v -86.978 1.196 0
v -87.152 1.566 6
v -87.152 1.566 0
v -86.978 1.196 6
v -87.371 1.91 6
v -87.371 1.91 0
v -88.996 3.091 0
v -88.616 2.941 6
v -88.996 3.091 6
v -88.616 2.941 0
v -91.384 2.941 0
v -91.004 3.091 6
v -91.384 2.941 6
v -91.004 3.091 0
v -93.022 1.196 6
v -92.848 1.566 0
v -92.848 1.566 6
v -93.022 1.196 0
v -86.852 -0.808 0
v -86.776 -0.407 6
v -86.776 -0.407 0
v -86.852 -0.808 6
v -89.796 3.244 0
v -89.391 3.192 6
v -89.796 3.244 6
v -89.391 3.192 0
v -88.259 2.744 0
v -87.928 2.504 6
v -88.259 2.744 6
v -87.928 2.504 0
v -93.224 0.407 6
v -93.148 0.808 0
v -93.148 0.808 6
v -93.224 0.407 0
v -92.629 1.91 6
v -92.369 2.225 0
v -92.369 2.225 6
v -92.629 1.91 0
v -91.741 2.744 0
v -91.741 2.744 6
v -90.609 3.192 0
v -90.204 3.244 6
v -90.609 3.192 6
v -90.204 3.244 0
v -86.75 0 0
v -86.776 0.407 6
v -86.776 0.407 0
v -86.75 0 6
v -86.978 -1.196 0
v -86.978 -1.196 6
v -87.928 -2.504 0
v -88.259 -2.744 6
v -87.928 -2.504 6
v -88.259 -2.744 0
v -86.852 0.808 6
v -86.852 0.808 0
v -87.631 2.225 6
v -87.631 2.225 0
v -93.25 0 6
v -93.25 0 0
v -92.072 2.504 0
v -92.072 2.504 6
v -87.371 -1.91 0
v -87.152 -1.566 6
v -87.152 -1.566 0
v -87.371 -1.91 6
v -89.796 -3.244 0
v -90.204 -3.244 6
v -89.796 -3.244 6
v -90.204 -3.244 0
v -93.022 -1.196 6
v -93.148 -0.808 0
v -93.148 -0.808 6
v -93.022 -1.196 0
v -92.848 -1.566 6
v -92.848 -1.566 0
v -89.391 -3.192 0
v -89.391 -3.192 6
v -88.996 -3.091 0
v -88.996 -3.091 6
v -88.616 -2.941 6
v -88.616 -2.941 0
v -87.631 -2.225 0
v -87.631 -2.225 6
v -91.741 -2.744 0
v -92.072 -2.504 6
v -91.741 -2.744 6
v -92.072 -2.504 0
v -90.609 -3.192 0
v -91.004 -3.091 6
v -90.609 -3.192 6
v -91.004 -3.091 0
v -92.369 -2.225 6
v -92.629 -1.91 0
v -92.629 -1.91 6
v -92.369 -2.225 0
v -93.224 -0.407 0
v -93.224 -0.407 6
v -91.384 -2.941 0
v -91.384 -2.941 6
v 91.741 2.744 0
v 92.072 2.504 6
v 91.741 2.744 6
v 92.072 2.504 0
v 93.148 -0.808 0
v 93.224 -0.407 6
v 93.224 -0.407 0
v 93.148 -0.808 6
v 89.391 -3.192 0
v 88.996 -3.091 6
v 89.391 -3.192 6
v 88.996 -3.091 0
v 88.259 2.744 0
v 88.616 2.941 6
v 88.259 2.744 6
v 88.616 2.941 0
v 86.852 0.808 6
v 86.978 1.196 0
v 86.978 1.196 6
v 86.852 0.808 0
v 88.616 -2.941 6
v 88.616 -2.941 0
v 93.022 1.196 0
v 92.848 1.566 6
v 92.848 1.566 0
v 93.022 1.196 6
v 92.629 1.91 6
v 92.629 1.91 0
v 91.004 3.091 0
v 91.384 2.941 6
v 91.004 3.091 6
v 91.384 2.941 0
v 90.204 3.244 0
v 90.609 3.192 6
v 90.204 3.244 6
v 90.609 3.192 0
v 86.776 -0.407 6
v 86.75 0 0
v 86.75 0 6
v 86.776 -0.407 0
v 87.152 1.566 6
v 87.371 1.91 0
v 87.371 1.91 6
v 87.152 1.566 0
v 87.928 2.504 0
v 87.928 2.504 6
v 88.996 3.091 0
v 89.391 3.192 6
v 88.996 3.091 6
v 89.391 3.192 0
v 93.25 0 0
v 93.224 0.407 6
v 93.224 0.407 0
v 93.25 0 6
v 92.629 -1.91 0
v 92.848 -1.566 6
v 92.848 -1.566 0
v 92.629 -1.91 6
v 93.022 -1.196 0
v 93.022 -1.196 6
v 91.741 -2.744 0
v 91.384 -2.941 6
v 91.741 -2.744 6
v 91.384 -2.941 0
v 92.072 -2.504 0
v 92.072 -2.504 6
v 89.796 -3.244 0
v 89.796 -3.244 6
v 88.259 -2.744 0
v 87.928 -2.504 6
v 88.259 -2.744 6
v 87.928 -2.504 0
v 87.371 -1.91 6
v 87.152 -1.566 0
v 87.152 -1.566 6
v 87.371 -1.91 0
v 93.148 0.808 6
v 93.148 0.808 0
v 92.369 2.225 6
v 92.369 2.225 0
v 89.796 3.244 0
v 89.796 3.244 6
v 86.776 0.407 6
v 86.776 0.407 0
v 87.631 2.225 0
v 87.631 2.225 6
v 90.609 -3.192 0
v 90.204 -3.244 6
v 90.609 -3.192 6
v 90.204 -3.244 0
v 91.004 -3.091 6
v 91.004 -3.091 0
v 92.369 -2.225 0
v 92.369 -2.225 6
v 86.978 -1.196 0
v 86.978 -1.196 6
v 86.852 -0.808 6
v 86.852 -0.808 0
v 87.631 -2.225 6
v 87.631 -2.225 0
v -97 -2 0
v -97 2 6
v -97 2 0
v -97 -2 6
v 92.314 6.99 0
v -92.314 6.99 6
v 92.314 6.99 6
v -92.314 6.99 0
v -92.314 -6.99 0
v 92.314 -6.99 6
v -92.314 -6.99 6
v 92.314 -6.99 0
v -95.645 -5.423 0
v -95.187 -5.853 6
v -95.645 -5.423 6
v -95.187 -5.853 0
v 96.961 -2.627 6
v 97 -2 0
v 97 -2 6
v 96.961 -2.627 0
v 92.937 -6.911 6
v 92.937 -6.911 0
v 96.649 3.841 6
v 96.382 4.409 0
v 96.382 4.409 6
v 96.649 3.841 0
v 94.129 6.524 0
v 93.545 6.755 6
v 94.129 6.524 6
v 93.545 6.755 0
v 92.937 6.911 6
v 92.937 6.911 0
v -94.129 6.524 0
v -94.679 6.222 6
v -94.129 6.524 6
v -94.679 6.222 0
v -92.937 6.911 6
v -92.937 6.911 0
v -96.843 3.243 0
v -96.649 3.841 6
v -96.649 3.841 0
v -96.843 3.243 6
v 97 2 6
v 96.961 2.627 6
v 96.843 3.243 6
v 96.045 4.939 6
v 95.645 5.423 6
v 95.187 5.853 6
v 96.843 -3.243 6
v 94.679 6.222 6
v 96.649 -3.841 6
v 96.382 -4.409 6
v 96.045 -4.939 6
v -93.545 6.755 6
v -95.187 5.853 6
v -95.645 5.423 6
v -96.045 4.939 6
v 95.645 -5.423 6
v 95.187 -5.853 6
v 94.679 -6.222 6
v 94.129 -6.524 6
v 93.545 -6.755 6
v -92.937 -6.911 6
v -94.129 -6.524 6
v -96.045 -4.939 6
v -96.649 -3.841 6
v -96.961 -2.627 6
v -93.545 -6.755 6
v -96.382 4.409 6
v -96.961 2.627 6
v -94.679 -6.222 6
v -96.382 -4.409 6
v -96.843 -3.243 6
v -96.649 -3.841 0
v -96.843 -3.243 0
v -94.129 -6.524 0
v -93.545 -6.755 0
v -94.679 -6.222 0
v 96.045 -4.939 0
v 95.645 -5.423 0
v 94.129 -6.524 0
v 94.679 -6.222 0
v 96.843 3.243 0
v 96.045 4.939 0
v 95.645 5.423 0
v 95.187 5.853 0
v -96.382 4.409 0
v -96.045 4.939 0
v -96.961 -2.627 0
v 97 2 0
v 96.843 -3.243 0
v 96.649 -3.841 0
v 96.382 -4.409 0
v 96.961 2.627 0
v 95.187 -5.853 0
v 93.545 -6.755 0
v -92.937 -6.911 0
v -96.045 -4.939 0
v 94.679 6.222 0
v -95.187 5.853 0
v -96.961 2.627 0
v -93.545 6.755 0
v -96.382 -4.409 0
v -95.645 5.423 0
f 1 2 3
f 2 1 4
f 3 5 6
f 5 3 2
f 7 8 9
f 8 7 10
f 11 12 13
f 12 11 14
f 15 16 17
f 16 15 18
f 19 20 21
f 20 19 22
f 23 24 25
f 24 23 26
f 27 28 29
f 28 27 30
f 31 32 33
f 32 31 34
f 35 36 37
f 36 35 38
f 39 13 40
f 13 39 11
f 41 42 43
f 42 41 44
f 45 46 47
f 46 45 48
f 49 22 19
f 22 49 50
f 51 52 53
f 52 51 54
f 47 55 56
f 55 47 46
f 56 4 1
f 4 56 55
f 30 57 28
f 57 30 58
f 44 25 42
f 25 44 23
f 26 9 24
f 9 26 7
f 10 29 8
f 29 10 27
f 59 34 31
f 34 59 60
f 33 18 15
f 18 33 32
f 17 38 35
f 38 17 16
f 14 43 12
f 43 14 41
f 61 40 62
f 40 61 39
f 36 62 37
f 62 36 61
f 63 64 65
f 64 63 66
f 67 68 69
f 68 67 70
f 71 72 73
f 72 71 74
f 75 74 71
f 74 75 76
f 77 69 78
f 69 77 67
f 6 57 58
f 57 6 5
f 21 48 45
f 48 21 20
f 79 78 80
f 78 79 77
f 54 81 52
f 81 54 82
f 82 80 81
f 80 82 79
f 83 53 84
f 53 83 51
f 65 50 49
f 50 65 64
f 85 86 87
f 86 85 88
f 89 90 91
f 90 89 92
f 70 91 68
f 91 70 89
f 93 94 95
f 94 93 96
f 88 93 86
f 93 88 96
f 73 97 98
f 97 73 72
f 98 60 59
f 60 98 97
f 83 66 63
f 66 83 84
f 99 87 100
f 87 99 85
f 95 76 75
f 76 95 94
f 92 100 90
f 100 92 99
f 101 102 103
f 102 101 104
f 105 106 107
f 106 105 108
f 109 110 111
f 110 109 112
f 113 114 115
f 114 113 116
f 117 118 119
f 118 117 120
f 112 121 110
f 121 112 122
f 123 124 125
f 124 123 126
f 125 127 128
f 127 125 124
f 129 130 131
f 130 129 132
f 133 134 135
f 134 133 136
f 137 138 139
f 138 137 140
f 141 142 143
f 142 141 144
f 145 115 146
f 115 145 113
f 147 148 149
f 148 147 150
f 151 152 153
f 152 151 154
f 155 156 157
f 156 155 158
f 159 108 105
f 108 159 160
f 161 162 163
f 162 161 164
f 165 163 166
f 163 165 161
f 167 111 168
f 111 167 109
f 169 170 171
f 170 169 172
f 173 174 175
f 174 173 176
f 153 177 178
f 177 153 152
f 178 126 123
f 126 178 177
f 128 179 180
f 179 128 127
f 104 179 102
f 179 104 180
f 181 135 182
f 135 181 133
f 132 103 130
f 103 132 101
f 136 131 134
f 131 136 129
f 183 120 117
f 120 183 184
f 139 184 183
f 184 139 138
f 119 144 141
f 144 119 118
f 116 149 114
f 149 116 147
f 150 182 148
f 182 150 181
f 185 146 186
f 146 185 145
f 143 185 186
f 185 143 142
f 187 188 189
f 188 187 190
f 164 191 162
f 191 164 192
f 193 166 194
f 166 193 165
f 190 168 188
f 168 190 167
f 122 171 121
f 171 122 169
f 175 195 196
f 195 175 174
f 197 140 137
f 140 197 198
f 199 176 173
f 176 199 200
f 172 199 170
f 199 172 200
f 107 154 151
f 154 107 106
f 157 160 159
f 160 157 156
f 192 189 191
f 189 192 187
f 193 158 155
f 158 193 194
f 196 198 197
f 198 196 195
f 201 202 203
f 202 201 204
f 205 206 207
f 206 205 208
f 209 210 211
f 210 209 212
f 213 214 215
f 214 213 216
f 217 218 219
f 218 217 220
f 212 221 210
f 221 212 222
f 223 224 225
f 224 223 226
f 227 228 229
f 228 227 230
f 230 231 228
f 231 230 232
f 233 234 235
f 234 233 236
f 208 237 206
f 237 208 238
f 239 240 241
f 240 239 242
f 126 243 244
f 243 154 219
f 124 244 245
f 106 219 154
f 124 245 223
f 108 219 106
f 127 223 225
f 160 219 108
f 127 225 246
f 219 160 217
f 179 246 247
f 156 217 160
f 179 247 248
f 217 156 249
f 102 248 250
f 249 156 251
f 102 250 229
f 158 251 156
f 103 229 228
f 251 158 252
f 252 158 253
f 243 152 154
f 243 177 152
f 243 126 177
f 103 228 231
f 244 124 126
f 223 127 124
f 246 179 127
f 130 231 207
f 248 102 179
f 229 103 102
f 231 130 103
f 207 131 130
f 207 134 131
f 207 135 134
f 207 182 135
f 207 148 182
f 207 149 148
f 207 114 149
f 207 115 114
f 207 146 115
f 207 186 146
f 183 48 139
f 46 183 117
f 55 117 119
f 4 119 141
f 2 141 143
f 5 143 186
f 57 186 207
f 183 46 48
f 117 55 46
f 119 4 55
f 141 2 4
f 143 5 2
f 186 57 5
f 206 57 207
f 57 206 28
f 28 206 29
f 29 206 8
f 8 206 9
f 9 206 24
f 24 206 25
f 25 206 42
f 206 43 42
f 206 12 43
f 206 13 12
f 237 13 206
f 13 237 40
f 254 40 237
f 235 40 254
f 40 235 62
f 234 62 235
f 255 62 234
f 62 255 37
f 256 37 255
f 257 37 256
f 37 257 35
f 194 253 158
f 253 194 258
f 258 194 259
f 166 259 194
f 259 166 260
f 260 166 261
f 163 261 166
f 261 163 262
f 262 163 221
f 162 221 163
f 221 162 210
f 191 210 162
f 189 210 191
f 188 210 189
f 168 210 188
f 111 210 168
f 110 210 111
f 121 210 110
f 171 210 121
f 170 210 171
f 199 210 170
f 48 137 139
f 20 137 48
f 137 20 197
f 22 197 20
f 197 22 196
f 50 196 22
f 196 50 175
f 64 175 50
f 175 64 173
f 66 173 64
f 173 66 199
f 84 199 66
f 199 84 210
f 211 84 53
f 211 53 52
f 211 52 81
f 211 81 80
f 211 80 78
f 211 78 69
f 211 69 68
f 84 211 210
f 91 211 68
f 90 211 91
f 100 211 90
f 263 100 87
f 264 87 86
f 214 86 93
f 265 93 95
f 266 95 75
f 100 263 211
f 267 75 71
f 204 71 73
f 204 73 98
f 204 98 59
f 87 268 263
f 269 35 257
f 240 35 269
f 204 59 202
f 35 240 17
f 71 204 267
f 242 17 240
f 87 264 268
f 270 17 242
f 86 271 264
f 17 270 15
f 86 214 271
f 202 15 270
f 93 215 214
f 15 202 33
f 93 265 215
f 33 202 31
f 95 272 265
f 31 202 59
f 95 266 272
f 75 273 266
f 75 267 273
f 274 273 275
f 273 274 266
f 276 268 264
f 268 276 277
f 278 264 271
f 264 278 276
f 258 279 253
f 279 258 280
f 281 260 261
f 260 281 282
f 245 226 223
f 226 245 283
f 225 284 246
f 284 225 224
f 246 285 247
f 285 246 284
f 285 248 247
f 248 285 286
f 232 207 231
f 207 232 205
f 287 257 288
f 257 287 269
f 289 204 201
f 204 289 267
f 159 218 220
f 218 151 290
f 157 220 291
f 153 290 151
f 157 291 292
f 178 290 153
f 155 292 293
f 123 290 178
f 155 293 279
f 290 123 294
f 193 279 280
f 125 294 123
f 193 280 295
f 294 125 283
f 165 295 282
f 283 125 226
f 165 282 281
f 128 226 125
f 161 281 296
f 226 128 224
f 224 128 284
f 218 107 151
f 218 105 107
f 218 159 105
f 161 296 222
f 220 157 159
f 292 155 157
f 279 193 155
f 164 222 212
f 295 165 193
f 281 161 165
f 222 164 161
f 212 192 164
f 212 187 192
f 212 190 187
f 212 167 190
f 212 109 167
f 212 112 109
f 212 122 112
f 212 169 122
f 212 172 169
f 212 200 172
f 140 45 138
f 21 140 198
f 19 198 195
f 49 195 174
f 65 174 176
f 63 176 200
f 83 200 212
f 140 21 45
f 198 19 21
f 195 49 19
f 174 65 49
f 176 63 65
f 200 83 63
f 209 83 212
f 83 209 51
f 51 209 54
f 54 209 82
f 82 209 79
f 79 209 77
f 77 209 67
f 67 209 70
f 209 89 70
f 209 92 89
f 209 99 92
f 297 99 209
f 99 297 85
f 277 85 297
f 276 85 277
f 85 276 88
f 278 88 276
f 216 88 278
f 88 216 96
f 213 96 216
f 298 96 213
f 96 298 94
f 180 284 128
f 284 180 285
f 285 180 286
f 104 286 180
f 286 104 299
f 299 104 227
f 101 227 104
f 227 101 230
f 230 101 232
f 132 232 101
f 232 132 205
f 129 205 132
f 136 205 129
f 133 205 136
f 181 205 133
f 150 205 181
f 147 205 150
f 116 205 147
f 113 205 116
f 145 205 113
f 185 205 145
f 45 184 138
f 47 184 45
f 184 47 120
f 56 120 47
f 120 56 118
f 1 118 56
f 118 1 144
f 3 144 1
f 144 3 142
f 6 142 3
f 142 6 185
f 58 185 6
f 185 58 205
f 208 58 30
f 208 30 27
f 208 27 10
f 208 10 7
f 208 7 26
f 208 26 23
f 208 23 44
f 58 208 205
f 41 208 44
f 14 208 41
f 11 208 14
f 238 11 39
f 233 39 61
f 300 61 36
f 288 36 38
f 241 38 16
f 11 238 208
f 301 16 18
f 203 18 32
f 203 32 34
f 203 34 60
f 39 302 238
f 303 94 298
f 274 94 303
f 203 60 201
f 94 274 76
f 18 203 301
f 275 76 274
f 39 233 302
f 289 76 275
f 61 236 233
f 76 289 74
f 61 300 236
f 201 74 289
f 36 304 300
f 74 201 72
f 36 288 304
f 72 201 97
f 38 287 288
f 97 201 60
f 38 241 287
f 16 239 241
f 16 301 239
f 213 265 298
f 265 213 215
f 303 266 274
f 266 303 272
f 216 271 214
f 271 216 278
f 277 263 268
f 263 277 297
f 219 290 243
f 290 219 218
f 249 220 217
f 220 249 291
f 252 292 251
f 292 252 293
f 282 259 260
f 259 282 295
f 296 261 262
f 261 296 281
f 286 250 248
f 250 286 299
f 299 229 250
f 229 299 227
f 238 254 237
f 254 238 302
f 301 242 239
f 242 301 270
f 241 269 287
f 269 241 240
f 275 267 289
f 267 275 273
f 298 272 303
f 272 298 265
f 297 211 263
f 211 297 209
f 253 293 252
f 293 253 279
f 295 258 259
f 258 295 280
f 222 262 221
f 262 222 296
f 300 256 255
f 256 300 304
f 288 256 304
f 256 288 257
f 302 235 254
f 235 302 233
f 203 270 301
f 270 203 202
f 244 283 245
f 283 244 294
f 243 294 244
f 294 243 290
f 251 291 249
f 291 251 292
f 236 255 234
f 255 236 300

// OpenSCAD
$fn = 50;


difference() {
	union() {
		hull() {
			translate(v = [-92.0000000000, 2.0000000000, 0]) {
				cylinder(h = 6, r = 5);
			}
			translate(v = [92.0000000000, 2.0000000000, 0]) {
				cylinder(h = 6, r = 5);
			}
			translate(v = [-92.0000000000, -2.0000000000, 0]) {
				cylinder(h = 6, r = 5);
			}
			translate(v = [92.0000000000, -2.0000000000, 0]) {
				cylinder(h = 6, r = 5);
			}
		}
	}
	union() {
		translate(v = [-90.0000000000, 0.0000000000, -100.0000000000]) {
			cylinder(h = 200, r = 3.2500000000);
		}
		translate(v = [-90.0000000000, 0.0000000000, -100.0000000000]) {
			cylinder(h = 200, r = 3.2500000000);
		}
		translate(v = [90.0000000000, 0.0000000000, -100.0000000000]) {
			cylinder(h = 200, r = 3.2500000000);
		}
		translate(v = [90.0000000000, 0.0000000000, -100.0000000000]) {
			cylinder(h = 200, r = 3.2500000000);
		}
	}
}
